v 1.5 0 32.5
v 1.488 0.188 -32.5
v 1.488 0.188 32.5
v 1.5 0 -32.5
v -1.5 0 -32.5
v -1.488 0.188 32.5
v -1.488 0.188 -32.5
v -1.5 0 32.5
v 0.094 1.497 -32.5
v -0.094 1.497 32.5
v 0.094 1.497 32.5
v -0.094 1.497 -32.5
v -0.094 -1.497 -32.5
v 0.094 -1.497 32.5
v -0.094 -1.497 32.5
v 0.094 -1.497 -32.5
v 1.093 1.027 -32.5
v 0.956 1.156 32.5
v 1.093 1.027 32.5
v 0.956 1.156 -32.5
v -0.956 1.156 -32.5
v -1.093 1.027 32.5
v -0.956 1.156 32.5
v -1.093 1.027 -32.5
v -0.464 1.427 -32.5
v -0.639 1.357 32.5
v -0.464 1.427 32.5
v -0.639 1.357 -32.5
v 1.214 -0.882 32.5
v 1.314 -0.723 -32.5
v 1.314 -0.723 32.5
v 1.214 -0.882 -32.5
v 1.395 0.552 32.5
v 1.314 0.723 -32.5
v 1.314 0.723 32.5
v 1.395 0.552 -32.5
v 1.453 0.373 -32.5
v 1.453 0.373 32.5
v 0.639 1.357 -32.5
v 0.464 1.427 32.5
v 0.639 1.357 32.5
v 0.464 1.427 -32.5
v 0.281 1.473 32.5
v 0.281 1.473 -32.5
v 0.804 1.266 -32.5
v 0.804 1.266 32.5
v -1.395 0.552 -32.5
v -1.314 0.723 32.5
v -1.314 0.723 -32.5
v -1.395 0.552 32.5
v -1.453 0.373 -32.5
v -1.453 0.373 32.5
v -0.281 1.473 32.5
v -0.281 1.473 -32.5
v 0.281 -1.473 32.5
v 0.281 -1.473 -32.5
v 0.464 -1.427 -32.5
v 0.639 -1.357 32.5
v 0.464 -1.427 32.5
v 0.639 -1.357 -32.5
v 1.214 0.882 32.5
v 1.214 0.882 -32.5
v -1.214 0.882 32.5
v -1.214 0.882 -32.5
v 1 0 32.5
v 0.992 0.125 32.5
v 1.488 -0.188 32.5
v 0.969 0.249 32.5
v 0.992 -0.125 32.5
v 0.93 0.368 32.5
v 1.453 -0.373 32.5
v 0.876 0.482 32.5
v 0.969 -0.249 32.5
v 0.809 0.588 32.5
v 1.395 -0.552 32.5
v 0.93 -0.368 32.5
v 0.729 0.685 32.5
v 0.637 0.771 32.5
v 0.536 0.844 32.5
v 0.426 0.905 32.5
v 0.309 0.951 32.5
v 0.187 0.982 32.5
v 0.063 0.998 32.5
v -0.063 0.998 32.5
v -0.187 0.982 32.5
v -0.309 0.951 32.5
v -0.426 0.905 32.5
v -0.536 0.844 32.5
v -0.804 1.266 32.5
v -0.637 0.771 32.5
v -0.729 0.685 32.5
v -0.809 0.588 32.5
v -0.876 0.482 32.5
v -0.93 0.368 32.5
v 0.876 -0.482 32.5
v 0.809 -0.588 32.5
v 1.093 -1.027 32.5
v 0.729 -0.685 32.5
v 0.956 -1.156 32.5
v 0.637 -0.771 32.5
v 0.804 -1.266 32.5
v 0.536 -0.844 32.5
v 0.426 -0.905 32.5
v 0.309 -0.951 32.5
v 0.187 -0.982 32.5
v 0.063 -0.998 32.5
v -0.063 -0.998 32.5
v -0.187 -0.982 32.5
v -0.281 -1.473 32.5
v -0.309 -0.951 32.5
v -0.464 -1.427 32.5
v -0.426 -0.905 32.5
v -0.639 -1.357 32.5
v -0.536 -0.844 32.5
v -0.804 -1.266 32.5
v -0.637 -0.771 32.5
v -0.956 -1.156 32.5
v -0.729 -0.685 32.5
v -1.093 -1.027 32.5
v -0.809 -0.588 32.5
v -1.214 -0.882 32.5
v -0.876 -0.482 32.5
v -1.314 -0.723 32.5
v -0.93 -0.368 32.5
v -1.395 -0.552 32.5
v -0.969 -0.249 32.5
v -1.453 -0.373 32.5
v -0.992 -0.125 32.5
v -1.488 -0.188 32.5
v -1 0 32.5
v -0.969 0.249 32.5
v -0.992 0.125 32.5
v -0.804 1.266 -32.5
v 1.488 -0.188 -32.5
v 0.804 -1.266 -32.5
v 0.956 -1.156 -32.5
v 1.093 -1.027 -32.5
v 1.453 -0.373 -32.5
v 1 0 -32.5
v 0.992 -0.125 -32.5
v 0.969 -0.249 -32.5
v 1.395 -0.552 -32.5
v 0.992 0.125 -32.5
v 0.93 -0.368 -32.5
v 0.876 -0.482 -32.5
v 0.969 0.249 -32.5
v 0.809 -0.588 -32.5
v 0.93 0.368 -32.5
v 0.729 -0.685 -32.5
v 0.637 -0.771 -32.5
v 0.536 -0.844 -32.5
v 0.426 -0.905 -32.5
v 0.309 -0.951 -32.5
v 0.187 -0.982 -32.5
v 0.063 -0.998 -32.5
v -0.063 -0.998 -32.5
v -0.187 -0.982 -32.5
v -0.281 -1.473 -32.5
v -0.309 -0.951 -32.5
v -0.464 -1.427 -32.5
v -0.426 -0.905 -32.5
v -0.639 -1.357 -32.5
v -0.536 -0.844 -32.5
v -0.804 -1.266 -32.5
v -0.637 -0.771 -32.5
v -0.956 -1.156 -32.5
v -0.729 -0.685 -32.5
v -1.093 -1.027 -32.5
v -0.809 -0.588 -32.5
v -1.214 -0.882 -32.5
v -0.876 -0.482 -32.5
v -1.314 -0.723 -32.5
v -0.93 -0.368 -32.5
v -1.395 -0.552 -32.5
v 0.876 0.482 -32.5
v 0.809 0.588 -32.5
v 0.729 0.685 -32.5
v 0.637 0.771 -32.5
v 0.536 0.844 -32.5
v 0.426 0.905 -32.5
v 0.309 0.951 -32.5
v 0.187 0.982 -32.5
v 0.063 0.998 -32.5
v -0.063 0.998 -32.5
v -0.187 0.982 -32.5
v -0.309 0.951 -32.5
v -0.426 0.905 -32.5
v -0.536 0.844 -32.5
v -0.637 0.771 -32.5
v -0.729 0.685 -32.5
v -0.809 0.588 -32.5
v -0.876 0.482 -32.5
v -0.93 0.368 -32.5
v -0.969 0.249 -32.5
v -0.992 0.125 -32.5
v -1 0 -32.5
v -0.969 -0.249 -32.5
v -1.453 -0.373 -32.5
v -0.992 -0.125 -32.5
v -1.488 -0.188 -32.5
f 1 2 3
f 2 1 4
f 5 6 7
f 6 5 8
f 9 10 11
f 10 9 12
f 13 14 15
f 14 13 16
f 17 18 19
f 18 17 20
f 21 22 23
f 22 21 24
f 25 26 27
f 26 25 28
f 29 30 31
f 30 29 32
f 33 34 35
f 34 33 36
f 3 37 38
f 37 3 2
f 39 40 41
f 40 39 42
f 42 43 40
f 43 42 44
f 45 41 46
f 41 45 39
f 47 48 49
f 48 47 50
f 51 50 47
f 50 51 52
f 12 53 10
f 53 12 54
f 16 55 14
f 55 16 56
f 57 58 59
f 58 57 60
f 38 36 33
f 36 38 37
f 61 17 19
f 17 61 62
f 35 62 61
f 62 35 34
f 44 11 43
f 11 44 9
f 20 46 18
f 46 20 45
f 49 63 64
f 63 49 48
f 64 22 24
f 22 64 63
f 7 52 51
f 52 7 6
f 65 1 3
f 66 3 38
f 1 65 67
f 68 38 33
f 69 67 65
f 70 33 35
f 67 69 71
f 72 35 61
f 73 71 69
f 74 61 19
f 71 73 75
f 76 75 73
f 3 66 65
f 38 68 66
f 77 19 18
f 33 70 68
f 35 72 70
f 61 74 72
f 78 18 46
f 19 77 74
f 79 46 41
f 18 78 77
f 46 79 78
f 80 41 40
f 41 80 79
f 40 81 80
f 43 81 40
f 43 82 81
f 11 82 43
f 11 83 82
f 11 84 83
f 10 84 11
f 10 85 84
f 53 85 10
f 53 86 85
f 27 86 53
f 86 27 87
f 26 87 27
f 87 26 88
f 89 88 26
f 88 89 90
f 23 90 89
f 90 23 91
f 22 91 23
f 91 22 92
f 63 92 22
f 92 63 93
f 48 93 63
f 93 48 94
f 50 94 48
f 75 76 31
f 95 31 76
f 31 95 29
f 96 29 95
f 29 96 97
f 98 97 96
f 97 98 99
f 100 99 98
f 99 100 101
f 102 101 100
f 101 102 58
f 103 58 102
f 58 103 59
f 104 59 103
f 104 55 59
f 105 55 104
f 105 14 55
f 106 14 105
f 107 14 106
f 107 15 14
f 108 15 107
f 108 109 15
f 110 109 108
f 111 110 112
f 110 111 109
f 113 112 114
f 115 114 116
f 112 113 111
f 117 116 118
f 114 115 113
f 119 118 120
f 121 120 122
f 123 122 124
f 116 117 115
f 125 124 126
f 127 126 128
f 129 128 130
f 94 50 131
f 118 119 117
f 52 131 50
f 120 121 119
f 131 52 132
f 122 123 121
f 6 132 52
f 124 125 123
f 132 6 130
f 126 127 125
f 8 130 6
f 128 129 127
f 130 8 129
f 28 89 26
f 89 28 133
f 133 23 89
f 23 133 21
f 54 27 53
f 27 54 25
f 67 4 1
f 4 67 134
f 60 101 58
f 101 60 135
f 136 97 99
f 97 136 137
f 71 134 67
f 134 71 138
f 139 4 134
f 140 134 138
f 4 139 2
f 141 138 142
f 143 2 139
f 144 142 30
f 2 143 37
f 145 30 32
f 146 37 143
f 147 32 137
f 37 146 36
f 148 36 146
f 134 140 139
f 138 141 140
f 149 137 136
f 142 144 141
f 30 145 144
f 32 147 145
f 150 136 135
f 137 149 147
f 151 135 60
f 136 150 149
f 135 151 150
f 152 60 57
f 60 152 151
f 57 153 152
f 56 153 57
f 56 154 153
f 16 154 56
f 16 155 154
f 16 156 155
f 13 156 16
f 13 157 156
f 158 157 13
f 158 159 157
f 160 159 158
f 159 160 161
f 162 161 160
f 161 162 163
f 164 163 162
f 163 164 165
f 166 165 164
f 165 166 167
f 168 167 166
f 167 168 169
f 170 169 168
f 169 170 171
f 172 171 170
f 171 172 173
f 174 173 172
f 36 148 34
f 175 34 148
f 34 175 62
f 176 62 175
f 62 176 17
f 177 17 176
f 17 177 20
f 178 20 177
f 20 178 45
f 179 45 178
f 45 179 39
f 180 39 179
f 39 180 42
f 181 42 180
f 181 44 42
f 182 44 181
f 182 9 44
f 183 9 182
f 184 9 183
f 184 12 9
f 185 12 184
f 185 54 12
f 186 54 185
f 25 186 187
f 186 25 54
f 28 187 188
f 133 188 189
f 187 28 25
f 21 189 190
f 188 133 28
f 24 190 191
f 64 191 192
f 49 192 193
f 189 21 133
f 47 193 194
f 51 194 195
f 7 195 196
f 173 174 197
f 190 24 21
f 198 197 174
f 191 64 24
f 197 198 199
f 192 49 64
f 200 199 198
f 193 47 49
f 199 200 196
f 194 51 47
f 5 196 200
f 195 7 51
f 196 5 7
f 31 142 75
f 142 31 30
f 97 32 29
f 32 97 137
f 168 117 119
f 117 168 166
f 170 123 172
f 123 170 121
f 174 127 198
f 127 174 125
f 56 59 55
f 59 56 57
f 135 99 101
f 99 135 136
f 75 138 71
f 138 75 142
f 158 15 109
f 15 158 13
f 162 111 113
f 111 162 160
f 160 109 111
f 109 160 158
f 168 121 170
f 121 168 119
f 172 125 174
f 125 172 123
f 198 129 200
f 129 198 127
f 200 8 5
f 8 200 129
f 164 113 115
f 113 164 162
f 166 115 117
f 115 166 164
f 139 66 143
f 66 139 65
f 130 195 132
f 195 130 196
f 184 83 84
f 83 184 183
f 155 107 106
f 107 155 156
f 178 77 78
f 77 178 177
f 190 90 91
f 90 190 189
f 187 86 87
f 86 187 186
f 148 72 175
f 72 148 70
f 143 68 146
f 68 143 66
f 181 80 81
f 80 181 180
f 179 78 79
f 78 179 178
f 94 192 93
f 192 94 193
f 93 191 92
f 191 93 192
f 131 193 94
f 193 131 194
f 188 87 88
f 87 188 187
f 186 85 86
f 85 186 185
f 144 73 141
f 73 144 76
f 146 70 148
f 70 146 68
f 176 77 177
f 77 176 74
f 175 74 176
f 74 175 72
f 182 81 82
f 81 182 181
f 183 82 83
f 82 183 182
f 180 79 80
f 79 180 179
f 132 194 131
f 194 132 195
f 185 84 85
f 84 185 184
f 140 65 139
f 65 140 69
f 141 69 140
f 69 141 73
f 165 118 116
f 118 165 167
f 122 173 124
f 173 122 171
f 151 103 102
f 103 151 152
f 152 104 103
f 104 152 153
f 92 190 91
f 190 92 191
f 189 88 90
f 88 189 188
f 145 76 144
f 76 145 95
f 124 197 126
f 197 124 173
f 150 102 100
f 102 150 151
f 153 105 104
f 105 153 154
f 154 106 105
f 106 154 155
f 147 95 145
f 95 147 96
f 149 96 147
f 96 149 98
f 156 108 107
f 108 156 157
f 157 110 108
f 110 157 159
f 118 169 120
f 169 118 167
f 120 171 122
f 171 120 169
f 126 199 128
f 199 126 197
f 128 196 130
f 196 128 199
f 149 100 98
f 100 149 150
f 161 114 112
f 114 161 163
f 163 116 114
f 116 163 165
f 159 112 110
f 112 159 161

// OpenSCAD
$fn = 50;


difference() {
	union() {
		translate(v = [0, 0, -32.5000000000]) {
			cylinder(h = 65, r = 1.5000000000);
		}
	}
	union() {
		translate(v = [0, 0, -100.0000000000]) {
			cylinder(h = 200, r = 1.0000000000);
		}
	}
}
